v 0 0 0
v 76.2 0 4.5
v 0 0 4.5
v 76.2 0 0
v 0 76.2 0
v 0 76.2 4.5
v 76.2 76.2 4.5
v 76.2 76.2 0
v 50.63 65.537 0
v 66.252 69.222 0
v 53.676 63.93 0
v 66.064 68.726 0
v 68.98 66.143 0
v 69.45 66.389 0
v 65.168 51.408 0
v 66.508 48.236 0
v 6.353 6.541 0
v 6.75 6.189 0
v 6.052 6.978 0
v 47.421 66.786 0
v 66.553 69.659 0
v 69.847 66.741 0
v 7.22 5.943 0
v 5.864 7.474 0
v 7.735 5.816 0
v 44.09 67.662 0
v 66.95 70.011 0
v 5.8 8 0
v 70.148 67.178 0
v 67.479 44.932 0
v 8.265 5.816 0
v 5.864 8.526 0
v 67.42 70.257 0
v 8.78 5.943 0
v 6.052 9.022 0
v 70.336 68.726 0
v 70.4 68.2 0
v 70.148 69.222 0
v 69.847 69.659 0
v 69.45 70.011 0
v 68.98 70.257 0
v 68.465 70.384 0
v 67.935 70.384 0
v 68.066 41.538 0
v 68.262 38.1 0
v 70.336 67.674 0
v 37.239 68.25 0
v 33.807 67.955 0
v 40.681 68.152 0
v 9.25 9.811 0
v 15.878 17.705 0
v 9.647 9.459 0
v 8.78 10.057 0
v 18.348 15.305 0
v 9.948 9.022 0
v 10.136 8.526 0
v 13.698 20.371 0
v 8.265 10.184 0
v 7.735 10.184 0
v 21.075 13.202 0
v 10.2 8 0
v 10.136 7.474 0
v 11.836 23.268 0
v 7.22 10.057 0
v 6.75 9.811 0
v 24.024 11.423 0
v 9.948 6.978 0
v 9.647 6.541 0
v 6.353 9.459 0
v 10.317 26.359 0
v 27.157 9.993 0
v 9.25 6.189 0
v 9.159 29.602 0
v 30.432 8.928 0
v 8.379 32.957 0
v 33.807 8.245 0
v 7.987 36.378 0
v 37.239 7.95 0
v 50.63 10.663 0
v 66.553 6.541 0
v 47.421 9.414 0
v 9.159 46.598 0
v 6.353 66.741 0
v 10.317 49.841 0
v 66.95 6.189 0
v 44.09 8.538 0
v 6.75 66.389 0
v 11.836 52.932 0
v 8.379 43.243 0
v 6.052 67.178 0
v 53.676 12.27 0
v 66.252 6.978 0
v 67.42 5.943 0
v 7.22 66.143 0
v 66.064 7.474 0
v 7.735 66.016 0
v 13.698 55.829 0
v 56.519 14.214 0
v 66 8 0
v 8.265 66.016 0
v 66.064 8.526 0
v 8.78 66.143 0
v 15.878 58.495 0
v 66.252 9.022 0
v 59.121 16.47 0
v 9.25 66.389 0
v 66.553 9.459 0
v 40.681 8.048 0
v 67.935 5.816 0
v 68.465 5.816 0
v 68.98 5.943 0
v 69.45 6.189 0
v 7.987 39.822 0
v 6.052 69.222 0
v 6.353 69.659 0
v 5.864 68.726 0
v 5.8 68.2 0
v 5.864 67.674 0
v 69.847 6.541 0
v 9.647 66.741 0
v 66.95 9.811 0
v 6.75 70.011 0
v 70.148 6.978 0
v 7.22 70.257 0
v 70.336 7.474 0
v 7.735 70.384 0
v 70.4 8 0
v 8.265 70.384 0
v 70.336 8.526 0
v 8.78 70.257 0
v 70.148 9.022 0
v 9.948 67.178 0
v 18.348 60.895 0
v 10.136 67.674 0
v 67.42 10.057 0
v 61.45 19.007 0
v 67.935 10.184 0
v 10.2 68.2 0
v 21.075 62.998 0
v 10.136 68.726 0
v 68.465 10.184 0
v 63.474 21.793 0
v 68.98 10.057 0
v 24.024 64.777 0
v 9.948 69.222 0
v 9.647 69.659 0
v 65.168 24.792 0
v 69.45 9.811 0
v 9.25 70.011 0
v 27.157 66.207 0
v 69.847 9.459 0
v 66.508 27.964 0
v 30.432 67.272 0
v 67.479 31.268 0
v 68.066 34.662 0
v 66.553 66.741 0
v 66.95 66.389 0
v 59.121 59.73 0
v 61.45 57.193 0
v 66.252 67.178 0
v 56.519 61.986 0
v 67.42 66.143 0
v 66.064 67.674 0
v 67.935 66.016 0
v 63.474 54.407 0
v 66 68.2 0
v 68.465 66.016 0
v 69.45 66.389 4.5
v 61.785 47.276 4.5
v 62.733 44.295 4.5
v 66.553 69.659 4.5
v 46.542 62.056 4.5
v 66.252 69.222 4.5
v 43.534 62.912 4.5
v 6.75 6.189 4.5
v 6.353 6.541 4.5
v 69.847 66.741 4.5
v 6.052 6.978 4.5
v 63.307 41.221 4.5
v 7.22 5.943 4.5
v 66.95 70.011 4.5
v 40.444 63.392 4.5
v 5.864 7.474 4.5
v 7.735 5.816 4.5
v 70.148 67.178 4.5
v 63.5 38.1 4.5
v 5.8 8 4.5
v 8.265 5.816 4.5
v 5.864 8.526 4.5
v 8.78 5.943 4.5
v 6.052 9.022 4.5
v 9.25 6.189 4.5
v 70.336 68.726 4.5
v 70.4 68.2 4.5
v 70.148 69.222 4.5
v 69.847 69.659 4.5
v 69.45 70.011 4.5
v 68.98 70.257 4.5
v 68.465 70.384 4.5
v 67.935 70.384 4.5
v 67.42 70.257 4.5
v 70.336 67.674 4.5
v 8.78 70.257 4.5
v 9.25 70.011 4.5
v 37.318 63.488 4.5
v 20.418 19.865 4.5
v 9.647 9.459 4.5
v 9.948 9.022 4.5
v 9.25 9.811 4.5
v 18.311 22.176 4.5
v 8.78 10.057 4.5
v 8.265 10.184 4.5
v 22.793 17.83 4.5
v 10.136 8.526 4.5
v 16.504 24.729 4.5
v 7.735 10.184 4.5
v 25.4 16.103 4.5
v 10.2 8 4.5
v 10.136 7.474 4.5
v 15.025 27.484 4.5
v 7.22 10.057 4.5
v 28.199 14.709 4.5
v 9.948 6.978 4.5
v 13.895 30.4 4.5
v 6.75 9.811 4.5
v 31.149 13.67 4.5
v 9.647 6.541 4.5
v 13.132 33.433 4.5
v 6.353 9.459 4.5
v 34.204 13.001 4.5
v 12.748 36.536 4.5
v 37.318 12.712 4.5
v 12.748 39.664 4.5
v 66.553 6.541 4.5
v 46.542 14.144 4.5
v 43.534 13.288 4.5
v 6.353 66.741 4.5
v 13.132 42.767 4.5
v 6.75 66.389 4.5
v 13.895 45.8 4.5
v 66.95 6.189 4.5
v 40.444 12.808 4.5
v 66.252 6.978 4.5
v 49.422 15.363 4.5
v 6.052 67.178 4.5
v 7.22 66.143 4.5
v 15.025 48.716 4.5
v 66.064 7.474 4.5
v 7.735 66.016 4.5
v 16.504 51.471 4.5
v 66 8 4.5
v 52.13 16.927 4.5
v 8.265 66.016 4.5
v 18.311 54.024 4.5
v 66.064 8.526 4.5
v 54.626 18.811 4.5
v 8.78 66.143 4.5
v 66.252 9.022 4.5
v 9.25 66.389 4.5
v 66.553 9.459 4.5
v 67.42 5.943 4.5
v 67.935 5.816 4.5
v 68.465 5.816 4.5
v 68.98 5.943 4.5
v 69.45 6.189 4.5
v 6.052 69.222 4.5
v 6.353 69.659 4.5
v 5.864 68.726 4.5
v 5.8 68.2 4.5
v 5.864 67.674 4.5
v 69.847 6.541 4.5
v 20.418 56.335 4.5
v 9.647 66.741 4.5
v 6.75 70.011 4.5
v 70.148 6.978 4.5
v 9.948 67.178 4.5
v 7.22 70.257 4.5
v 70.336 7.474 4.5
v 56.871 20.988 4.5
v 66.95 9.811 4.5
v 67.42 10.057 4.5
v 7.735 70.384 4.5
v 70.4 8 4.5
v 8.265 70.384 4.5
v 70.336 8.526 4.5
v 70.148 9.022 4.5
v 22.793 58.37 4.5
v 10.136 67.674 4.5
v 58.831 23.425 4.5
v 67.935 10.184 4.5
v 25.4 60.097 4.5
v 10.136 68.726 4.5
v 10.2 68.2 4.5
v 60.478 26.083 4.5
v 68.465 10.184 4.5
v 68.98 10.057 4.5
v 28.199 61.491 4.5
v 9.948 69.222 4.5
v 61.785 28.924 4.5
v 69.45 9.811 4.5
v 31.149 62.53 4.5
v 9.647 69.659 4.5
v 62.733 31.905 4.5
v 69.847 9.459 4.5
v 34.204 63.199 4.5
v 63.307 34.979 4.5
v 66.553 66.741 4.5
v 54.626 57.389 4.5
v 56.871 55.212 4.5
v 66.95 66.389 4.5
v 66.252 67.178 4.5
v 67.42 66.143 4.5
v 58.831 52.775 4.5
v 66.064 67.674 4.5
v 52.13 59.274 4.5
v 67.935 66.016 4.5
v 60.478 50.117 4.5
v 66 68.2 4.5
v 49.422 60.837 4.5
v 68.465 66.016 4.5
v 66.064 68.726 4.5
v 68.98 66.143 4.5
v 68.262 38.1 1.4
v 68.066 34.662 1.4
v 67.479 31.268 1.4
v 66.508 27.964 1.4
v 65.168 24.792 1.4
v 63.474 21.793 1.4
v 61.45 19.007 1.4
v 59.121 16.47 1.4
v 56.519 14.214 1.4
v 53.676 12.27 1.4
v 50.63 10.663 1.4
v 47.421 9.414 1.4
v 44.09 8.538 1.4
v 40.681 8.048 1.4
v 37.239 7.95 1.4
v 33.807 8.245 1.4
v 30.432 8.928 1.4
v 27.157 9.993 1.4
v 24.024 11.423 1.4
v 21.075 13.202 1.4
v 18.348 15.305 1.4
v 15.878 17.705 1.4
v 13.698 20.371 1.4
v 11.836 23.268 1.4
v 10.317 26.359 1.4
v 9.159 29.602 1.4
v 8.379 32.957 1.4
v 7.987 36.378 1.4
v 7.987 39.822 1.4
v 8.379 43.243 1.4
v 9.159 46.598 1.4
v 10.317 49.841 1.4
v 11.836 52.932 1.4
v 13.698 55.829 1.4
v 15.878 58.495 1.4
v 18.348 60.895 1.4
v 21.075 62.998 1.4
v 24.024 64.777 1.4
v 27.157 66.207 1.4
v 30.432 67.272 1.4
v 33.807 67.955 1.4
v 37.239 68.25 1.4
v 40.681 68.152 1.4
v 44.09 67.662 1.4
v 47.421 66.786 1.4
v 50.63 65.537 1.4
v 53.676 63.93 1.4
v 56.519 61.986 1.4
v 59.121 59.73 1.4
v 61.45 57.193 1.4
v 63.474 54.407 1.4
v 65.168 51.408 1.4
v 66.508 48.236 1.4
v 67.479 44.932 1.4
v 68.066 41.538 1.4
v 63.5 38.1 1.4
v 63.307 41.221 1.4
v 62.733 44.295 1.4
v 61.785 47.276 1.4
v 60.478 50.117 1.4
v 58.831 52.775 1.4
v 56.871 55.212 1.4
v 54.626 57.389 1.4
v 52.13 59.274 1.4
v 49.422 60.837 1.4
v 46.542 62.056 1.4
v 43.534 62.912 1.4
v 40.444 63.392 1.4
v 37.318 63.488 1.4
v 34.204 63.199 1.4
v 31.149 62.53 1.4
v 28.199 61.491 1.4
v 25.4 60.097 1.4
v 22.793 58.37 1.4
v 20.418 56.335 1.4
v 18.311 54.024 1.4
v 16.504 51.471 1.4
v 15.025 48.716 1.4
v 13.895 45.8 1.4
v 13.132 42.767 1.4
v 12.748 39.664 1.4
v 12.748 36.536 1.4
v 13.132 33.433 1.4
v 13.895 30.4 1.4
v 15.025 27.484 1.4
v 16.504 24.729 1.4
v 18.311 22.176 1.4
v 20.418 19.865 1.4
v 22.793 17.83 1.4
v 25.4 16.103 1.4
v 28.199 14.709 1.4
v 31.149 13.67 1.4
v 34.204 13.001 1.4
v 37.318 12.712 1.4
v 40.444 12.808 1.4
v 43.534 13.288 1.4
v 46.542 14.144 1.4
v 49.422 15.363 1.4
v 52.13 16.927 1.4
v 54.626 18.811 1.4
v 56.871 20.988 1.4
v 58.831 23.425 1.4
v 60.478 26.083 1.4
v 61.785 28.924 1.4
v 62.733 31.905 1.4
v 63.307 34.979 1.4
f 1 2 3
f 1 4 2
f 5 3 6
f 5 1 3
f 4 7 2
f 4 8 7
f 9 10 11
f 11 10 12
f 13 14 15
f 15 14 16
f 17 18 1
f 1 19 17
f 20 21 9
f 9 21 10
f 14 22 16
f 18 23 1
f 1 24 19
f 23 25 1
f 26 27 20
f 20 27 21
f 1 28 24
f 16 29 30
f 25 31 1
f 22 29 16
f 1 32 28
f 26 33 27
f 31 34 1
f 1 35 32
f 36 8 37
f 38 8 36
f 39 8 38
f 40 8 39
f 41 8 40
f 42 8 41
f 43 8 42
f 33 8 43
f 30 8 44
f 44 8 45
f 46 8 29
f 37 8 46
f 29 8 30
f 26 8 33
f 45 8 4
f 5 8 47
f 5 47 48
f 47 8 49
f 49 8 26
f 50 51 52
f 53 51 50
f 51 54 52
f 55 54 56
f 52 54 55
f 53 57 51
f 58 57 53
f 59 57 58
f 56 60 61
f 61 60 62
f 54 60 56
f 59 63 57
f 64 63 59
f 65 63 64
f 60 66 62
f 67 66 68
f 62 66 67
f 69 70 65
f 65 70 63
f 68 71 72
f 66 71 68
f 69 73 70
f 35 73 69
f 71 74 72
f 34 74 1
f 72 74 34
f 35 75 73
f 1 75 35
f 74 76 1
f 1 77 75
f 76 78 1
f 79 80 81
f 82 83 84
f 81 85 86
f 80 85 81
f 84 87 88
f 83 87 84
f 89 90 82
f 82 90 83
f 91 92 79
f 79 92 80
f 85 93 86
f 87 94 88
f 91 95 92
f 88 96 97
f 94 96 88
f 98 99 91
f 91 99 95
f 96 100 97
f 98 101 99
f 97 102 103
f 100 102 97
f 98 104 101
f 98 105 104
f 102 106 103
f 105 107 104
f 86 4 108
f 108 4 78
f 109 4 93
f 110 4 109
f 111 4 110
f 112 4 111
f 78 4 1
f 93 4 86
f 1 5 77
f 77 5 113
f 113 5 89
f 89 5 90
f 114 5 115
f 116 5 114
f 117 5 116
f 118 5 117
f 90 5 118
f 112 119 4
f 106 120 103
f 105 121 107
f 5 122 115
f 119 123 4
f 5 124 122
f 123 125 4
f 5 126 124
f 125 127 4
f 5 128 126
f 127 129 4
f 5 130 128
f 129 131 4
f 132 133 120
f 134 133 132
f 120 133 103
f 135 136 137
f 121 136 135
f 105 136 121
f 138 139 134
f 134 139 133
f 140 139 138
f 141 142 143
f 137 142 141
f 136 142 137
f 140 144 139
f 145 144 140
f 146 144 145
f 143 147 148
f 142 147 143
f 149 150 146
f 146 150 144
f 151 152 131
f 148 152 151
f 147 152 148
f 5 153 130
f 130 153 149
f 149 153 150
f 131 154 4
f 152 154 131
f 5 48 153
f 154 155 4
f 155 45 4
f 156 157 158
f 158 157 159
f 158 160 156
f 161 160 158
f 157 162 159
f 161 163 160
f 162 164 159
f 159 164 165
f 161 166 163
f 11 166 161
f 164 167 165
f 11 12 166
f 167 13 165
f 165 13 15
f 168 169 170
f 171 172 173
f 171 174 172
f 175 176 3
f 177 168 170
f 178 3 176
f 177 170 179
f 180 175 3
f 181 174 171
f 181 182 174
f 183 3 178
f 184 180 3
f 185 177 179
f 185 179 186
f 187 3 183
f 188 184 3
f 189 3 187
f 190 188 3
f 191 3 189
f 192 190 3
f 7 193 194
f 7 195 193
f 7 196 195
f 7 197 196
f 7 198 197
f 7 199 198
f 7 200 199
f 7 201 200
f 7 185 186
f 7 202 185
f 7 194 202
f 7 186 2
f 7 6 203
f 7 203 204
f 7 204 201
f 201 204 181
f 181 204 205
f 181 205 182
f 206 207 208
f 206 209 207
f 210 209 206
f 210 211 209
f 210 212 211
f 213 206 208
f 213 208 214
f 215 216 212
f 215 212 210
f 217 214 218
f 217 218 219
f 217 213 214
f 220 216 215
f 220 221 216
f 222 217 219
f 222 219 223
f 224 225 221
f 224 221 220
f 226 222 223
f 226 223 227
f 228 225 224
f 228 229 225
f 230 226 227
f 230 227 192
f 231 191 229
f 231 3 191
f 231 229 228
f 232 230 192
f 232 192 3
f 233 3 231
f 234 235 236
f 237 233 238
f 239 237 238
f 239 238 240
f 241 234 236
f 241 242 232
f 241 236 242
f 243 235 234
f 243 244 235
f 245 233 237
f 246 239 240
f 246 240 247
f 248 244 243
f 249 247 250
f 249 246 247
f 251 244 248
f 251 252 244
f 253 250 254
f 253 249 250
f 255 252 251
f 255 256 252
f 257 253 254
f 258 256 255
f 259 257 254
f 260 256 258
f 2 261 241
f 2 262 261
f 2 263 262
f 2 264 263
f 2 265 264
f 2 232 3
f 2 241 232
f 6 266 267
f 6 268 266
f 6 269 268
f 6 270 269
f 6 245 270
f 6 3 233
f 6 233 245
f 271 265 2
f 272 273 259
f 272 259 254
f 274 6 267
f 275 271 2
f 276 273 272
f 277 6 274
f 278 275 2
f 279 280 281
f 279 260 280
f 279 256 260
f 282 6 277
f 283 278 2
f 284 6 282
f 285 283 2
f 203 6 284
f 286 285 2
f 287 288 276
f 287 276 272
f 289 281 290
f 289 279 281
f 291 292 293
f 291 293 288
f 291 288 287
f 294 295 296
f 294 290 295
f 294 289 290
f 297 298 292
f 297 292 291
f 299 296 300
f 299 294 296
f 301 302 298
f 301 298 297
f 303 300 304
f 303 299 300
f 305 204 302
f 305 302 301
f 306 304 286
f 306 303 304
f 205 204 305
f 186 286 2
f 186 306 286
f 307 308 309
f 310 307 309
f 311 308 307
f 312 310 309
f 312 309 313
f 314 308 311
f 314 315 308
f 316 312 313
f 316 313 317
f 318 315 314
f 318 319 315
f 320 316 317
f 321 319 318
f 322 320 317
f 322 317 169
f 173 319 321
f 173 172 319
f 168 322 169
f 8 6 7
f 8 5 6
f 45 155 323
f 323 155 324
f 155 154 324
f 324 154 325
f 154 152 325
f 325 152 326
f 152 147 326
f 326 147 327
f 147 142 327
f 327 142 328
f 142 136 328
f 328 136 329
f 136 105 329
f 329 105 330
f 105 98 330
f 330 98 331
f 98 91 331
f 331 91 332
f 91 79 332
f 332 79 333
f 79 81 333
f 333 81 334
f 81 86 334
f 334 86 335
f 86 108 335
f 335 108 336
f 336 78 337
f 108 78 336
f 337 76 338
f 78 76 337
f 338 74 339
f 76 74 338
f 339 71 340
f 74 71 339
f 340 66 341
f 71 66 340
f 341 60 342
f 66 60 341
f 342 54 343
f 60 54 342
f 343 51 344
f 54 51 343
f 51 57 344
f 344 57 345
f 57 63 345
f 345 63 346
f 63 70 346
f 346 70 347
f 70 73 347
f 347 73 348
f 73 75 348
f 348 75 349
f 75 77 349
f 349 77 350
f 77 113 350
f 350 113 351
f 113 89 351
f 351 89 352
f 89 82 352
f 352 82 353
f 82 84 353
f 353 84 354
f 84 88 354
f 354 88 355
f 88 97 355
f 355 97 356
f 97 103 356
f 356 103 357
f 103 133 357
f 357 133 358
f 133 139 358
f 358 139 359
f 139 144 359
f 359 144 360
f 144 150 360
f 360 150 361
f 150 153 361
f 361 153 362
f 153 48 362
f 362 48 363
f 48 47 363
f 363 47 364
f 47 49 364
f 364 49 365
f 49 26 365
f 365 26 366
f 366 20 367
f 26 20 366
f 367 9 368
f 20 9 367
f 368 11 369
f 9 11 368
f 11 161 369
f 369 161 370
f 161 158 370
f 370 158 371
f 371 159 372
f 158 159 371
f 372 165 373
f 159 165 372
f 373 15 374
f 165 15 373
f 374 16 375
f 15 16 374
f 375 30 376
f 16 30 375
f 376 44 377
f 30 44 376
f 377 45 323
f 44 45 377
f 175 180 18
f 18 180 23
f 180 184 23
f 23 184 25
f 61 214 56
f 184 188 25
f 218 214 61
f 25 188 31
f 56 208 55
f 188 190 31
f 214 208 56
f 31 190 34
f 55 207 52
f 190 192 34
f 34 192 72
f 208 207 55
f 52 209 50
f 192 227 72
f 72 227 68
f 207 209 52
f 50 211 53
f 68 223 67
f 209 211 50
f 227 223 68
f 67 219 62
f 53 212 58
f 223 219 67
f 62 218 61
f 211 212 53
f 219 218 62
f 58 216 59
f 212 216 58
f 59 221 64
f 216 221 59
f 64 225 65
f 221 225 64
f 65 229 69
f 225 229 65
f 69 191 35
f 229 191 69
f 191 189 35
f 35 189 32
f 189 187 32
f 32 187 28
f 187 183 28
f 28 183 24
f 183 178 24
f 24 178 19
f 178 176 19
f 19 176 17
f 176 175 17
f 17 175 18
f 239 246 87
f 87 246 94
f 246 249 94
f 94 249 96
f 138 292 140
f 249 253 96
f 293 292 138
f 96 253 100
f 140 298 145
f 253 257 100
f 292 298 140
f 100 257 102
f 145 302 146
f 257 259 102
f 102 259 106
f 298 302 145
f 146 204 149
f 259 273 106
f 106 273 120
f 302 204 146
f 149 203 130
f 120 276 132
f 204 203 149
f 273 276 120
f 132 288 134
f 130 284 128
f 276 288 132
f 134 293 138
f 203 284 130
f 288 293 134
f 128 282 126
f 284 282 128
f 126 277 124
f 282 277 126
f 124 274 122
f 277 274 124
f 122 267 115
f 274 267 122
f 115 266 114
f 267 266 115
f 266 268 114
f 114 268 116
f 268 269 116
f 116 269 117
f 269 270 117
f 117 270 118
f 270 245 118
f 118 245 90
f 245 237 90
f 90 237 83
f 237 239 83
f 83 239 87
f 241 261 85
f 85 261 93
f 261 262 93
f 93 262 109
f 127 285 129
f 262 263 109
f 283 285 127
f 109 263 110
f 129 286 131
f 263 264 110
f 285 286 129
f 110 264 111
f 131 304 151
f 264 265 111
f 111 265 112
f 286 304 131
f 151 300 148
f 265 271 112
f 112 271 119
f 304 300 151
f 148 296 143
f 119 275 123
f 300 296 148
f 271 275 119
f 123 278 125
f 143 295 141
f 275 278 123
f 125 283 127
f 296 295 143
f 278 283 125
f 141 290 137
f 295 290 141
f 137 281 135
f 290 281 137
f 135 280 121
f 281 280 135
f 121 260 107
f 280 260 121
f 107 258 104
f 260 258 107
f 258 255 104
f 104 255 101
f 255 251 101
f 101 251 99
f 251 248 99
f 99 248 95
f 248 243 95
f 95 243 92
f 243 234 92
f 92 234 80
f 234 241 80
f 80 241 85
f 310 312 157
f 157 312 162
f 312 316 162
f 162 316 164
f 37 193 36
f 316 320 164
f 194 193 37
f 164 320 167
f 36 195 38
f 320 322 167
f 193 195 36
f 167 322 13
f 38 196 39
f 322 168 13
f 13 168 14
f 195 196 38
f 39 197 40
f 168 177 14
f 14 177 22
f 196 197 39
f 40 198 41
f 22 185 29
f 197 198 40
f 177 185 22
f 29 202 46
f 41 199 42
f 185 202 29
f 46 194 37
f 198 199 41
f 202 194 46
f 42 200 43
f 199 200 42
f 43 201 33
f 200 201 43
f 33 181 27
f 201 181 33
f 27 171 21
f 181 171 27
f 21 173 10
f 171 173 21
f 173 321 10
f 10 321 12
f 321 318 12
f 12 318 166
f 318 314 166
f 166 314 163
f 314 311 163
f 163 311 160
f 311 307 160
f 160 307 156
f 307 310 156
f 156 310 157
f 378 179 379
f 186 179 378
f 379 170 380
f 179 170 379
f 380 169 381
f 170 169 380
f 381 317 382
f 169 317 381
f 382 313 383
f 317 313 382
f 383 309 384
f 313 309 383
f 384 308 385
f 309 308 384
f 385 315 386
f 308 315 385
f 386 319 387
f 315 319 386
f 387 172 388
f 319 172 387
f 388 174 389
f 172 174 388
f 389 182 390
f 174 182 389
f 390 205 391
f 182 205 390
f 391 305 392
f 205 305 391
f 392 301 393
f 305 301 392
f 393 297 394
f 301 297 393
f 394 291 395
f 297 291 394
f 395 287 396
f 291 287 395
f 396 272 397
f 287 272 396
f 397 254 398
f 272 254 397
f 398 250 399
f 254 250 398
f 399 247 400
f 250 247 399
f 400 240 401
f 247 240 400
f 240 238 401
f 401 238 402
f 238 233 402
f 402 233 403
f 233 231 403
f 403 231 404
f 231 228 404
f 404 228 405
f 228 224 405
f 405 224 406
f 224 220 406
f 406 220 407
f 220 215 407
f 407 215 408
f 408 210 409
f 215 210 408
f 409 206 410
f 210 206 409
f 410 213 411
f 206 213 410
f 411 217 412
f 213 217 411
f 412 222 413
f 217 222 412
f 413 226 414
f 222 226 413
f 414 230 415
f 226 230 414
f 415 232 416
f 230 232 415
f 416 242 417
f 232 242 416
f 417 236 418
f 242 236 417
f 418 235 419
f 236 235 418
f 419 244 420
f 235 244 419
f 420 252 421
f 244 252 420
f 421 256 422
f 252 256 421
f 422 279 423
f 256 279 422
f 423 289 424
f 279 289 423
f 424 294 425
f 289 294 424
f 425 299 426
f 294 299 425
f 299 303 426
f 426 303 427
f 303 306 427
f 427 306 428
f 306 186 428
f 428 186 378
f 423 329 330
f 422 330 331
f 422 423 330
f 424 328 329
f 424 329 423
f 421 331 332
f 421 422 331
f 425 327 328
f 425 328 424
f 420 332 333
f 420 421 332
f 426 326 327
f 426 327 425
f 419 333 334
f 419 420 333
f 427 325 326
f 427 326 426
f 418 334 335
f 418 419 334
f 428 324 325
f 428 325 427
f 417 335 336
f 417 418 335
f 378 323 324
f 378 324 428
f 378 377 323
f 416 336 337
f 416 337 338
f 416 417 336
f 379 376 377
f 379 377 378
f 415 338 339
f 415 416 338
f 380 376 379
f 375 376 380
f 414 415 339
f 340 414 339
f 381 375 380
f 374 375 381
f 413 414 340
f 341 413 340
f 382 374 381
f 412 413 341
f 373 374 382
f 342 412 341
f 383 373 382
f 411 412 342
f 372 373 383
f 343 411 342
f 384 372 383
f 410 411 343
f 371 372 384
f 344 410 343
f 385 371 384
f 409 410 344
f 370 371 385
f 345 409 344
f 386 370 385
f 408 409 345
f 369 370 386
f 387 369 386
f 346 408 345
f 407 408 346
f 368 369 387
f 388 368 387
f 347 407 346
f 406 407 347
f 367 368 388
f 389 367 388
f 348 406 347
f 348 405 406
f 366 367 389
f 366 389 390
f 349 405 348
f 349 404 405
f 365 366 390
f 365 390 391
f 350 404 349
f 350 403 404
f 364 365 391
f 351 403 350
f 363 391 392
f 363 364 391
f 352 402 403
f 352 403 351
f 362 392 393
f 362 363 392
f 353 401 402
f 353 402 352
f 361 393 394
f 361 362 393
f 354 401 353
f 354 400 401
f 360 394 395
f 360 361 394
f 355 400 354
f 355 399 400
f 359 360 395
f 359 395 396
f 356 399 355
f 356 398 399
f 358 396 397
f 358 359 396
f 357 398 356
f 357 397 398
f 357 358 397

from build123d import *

# Parameters (mm, degrees)
SKETCH_W        = 76.2
SKETCH_H        = 76.2
PAD_DEPTH       = 4.5
SKETCH003_R     = 25.4
POCKET_DEPTH    = 4.501
SKETCH001_R     = 2.2
POCKET001_DEPTH = 4.501
SKETCH004_R     = 30.1625
POCKET002_DEPTH = 1.4


with BuildPart() as part:
    # Sketch → Pad (new body)
    with BuildSketch(Plane.XY):
        with Locations((38.1, 38.1)):
            Rectangle(SKETCH_W, SKETCH_H)
    extrude(amount=PAD_DEPTH)

    # Sketch003 (on Face6 of Pad) → Pocket (cut, through all)
    with BuildSketch(Plane.XY.offset(4.5)):
        with Locations((38.1, 38.1)):
            Circle(SKETCH003_R)
    extrude(amount=-POCKET_DEPTH, mode=Mode.SUBTRACT)

    # Sketch001 (on Face6 of Pad) → Pocket001 (cut, through all)
    with BuildSketch(Plane.XY.offset(4.5)):
        with Locations((8, 8)):
            Circle(SKETCH001_R)
        with Locations((68.2, 8)):
            Circle(SKETCH001_R)
        with Locations((68.2, 68.2)):
            Circle(SKETCH001_R)
        with Locations((8, 68.2)):
            Circle(SKETCH001_R)
    extrude(amount=-POCKET001_DEPTH, mode=Mode.SUBTRACT)

    # Sketch004 (on Face4 of Pocket001) → Pocket002 (cut)
    with BuildSketch(Plane(origin=(0, 0, 0), x_dir=(1, 0, 0), z_dir=(0, 0, -1))):
        with Locations((38.1, -38.1)):
            Circle(SKETCH004_R)
    extrude(amount=-POCKET002_DEPTH, mode=Mode.SUBTRACT)


solid = part.part
